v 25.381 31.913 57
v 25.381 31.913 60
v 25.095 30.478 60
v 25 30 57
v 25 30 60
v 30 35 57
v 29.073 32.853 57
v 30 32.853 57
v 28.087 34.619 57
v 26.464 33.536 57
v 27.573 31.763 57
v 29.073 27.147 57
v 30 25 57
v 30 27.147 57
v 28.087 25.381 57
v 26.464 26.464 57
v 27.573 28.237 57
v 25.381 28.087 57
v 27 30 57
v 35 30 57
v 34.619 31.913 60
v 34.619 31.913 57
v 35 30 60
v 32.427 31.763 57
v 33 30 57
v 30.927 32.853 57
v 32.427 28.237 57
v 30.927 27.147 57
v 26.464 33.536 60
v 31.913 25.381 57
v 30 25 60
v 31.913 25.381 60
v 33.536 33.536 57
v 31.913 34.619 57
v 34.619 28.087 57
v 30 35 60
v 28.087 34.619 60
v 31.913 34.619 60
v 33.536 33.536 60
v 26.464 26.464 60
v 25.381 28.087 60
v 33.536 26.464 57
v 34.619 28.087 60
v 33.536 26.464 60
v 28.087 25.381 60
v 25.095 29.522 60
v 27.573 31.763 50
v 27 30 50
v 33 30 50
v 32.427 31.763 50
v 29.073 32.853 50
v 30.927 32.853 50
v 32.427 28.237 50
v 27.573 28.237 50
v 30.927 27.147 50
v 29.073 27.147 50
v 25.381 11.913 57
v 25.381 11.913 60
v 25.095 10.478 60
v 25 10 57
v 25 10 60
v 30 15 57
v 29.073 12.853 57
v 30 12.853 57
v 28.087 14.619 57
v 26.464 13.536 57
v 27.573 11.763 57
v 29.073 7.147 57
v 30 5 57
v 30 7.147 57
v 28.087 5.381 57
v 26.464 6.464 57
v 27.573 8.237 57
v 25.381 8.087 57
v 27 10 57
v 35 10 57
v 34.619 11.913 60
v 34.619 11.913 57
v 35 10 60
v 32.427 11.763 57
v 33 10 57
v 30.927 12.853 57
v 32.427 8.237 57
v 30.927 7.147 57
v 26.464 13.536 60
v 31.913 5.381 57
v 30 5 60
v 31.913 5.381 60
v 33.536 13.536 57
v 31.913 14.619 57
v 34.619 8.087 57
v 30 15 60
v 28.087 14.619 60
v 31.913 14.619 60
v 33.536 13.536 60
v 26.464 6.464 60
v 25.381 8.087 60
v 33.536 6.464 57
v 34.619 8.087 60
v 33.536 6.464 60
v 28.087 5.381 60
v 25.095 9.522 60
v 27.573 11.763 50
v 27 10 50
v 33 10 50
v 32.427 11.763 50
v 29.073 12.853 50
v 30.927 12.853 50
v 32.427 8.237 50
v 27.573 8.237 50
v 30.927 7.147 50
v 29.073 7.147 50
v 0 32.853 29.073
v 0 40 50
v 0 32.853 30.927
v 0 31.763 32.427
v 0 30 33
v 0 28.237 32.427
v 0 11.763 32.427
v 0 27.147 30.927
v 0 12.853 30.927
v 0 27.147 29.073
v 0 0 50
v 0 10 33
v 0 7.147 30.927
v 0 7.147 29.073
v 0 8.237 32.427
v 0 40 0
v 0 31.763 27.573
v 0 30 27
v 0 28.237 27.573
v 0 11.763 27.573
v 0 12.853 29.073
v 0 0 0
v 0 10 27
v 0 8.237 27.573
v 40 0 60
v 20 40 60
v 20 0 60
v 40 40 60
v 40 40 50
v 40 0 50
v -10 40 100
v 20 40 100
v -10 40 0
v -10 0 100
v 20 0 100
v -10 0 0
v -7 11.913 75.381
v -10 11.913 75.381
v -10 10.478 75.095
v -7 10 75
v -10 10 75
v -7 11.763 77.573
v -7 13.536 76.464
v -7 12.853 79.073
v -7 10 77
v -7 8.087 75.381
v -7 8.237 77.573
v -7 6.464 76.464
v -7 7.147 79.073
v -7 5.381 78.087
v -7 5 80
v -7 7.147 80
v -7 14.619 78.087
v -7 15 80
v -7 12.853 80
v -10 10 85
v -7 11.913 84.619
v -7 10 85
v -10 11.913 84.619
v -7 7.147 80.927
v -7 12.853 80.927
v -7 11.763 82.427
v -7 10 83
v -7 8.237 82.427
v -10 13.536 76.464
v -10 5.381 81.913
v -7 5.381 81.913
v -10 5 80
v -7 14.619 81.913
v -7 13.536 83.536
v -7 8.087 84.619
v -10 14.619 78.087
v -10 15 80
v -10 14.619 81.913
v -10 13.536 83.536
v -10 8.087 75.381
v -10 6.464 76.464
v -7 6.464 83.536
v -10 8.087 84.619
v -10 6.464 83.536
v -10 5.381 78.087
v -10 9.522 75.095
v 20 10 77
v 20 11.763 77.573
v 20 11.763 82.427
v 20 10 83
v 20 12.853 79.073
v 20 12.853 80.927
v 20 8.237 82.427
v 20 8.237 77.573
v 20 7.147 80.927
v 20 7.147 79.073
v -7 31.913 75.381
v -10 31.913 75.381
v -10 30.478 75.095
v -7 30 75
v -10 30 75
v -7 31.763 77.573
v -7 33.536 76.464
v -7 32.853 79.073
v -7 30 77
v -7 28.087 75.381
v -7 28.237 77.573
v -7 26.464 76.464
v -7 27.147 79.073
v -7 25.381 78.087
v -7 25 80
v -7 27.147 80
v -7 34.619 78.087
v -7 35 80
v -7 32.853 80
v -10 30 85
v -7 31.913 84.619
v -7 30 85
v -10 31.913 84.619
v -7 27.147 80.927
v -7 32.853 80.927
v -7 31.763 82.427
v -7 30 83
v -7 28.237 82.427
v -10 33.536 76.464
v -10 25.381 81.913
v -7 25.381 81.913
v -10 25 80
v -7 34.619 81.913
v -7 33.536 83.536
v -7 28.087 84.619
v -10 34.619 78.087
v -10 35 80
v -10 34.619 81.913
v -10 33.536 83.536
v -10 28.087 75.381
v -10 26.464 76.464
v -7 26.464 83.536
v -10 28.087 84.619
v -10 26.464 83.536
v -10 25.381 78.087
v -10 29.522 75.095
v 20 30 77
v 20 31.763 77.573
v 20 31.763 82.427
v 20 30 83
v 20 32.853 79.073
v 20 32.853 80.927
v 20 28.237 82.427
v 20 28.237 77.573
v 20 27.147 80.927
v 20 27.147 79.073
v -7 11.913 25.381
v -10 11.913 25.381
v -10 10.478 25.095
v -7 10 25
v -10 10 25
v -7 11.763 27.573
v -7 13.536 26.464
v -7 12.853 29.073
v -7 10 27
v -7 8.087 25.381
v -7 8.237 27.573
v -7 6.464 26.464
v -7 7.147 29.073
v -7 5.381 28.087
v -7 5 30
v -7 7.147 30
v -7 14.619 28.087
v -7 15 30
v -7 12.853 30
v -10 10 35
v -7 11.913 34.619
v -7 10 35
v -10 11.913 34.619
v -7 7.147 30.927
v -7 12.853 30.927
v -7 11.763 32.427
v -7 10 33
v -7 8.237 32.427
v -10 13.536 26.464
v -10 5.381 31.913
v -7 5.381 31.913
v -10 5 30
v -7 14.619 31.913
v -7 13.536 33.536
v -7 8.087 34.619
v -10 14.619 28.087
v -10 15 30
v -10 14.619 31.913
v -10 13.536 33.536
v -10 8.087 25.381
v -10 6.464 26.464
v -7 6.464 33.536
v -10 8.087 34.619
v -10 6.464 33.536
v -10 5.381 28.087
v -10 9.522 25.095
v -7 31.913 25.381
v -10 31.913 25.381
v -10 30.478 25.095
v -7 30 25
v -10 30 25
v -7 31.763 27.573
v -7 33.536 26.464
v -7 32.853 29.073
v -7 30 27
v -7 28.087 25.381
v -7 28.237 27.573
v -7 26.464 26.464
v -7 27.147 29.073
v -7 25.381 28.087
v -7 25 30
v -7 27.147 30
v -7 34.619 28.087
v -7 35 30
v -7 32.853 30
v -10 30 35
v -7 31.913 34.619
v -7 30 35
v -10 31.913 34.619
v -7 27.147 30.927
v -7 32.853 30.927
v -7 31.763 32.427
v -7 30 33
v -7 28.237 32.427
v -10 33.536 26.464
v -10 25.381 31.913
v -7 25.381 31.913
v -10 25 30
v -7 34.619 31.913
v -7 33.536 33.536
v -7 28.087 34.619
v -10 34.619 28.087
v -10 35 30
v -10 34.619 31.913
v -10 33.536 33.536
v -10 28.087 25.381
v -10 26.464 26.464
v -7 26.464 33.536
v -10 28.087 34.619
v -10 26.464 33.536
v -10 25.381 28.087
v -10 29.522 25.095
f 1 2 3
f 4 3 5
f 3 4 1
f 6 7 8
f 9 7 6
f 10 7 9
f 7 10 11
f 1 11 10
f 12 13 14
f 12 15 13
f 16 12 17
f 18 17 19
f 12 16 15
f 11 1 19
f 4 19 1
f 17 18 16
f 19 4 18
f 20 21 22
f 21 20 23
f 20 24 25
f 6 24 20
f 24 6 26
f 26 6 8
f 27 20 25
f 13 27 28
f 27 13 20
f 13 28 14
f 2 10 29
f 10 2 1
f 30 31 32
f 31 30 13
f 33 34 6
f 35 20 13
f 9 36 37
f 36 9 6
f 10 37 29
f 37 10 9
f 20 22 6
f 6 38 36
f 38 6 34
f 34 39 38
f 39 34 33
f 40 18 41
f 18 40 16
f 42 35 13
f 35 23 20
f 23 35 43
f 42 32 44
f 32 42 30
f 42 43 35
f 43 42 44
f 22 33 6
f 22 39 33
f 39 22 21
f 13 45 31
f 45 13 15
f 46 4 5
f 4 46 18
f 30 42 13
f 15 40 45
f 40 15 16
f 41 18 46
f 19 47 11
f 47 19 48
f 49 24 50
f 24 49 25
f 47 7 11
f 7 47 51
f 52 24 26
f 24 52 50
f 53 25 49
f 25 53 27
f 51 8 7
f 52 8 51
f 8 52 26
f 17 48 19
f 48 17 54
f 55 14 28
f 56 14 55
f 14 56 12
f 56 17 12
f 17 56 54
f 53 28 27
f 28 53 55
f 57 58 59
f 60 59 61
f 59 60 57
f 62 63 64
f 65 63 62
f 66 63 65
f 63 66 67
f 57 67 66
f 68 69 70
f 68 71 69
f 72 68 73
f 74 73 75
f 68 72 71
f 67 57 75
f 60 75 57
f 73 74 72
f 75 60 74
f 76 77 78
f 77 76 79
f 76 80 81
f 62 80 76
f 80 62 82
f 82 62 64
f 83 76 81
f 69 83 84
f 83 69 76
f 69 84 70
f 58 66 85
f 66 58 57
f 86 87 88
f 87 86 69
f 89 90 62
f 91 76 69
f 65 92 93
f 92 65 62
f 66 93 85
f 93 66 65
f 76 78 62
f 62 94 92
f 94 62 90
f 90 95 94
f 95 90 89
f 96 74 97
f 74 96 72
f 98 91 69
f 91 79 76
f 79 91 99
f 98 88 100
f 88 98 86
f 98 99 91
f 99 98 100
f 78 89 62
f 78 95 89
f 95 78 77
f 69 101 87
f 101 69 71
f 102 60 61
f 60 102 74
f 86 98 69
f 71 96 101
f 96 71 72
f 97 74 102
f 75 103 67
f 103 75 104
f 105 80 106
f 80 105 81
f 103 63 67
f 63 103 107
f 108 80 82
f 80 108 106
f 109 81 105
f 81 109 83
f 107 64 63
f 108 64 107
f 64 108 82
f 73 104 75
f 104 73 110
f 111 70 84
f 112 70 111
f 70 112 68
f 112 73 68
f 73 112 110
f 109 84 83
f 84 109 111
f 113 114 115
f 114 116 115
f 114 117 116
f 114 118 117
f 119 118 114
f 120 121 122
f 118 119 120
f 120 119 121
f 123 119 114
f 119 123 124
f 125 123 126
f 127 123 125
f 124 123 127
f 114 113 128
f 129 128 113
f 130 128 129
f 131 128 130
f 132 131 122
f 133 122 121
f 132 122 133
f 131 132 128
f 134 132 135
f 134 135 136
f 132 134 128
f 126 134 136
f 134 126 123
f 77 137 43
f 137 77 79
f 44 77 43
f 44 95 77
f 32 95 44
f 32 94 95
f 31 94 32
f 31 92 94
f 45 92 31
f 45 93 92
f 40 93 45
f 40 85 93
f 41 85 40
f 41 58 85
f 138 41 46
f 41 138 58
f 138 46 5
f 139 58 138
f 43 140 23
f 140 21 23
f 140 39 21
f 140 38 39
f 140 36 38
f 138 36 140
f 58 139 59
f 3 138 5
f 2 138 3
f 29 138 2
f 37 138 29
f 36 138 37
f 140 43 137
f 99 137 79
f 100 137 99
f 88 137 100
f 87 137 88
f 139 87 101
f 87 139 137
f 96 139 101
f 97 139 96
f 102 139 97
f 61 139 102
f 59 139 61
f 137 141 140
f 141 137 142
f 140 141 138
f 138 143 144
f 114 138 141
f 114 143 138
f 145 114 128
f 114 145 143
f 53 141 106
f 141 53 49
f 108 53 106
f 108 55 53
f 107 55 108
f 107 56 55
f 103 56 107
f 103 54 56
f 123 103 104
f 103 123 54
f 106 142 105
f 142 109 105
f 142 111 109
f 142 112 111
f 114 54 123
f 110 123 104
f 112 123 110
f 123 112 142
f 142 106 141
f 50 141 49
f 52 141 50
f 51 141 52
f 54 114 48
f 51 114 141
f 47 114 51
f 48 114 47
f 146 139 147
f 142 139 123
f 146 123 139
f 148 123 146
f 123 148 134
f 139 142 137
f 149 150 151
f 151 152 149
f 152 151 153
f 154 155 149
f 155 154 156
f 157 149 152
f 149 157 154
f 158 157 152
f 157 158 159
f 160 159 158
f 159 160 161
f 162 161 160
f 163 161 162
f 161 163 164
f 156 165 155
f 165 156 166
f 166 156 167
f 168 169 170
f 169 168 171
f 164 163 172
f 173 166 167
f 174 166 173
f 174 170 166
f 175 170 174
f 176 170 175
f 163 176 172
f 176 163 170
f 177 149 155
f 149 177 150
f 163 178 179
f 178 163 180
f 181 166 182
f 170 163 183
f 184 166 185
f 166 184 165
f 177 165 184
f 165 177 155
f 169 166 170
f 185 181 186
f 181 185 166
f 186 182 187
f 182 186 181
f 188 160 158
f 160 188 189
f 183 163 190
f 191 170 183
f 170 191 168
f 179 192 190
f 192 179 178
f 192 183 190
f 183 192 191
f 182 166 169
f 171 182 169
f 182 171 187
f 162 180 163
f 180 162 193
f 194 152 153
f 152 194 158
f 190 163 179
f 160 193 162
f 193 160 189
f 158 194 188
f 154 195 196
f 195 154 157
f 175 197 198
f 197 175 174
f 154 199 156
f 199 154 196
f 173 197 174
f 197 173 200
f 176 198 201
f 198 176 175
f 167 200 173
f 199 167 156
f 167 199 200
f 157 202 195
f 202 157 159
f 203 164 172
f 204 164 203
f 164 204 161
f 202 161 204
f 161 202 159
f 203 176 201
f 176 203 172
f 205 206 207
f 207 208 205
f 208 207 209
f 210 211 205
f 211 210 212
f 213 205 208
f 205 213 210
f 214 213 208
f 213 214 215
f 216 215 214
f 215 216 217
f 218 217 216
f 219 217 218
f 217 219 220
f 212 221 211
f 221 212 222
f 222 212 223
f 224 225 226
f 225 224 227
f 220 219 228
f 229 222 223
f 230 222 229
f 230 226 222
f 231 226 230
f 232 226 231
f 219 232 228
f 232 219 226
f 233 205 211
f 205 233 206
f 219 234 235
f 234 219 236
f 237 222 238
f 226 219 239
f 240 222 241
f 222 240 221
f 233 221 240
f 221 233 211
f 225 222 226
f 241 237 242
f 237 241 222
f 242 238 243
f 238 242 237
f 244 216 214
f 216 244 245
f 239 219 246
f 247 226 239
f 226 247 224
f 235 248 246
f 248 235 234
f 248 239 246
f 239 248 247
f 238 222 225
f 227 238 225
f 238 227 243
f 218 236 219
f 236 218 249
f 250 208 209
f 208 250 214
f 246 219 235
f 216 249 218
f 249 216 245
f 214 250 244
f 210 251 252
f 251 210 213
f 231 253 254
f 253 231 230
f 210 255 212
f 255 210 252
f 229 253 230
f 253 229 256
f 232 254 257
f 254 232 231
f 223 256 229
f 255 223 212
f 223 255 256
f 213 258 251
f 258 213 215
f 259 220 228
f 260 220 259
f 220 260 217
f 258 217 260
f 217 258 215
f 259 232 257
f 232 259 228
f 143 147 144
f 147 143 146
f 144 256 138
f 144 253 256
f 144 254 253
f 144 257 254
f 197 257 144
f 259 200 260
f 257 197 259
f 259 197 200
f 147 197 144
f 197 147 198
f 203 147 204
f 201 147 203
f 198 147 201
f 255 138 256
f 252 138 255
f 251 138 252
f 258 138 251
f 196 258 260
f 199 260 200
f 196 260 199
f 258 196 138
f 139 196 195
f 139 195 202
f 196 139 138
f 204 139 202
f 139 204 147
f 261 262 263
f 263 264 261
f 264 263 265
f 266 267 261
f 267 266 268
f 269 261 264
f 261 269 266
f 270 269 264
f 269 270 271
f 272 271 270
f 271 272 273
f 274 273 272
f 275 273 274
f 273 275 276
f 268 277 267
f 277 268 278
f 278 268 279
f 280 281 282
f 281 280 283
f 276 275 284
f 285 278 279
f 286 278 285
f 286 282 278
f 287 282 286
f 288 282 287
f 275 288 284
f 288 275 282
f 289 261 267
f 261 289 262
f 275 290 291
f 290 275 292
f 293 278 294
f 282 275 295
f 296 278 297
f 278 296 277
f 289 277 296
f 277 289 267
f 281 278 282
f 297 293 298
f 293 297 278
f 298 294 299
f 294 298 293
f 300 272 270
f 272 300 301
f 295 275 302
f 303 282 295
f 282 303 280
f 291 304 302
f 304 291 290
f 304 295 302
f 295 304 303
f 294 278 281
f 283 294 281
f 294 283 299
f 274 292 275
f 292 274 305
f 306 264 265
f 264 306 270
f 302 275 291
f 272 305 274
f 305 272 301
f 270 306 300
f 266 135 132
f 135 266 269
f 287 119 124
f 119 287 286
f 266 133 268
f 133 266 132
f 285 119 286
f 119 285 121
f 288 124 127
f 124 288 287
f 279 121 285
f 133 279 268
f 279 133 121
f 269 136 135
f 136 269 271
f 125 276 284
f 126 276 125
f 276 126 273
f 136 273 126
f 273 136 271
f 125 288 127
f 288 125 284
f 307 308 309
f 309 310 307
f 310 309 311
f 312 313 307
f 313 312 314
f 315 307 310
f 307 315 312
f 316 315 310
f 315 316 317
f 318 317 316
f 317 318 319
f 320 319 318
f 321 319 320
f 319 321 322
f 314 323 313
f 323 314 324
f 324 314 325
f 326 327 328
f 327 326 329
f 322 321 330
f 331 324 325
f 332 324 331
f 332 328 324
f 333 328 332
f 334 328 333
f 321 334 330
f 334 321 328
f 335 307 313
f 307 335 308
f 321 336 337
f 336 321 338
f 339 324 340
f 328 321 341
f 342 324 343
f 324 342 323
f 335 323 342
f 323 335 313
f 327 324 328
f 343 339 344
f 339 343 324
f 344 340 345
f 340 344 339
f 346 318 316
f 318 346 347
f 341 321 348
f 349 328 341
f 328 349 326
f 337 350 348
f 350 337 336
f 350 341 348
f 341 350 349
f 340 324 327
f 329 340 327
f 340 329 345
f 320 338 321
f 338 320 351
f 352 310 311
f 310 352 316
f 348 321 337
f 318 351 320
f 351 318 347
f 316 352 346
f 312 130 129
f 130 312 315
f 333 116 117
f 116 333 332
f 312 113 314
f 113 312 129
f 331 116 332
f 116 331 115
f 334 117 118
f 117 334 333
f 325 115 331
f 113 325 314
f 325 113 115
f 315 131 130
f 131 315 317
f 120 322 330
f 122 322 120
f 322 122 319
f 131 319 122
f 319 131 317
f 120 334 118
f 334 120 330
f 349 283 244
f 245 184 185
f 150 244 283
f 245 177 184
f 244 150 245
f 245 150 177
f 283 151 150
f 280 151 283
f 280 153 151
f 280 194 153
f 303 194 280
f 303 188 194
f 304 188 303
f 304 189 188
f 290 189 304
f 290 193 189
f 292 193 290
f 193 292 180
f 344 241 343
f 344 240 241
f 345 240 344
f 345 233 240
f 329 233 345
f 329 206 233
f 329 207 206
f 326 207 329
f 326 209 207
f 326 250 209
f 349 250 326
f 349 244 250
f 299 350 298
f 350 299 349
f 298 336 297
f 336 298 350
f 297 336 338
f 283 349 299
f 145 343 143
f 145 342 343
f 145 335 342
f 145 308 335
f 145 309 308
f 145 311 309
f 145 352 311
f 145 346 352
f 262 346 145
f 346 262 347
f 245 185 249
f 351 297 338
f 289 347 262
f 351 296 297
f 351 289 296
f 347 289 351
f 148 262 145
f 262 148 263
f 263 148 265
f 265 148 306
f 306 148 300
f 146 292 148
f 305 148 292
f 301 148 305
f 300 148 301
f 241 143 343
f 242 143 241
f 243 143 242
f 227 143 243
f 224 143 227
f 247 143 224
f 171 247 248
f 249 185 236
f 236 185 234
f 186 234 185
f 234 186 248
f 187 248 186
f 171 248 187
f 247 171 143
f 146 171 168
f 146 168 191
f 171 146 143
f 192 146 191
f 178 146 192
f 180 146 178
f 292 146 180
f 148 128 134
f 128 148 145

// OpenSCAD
// file: Profile.scad
q = 5;

ri = 0.3;
w2 =  6.4/2-ri;
w1 = 11.0/2-ri;
w0 =     w2;
th =  4.3;
t0 =  2.1+1.8+ri;
t1 =  t0+2.35;
t2 =  t0+th-ri;


module groove() {
    hull() {
        translate([ t2+2*ri,  w2+2*ri]) circle(r=ri, $fn=2*q);
        translate([ t2+2*ri+5,  w2+2*ri+5]) circle(r=ri, $fn=2*q);
        translate([ t2+2*ri,  10]) circle(r=ri, $fn=3);
    }
}

module slot_6() {
    hull() {
        translate([ t0, -w0]) circle(r=ri, $fn=5*q);
        translate([ t0,  w0]) circle(r=ri, $fn=2*q);
        translate([ t1, -w1]) circle(r=ri, $fn=2*q);
        translate([ t1,  w1]) circle(r=ri, $fn=2*q);
        translate([ t2, -w1]) circle(r=ri, $fn=2*q);
        translate([ t2,  w1]) circle(r=ri, $fn=2*q);
    }  
    translate([ t0-0.3, 0]) circle(r=0.5, $fn=5*q);    
}
module vSlot_6() {
    slot_6();
    difference() {
        translate([ t2+5,  0]) square([10,10], center=true);
        groove();
        mirror([0,1]) groove();
    }
}

module profile20x20_6V() {  // 20x20mm profile 6mm Vslot
    le = 20/2;
    difference() {
        hull() {
            translate([-le+0.5,-le+0.5]) circle(r=0.5, $fn=2*q);
            translate([-le+0.5, le-0.5]) circle(r=0.5, $fn=2*q);
            translate([ le-0.5,-le+0.5]) circle(r=0.5, $fn=2*q);
            translate([ le-0.5, le-0.5]) circle(r=0.5, $fn=2*q);
        }   
        circle(d=4.2, $fn=3*q);
        for(i=[0:3]) rotate(90*i) vSlot_6();
    }    
}

module profile40x40_6V() {  // 40x40mm profile 6mm Vslot
    le = 40/2;
    difference() {
        hull() {
            translate([-le+2,-le+2]) circle(r=2, $fn=3*q);
            translate([-le+2, le-2]) circle(r=2, $fn=3*q);
            translate([ le-2,-le+2]) circle(r=2, $fn=3*q);
            translate([ le-2, le-2]) circle(r=2, $fn=3*q);
        }   
        for(i=[0:3]) {
            rotate(90*i) translate([ le/2, le/2]) circle(d=4.6, $fn=3*q);
            rotate(90*i) translate([ le/2, le/2]) vSlot_6();
            rotate(90*i) translate([ le/2,-le/2]) vSlot_6();
            rotate(90*i) translate([-le/2, le/2])  slot_6();
            rotate(90*i) translate([-le/2,-le/2])  slot_6();
        }
        square([le*0.35, le*1.85],center=true);
        square([le*1.85, le*0.35],center=true);
        rotate(45) square(le*0.93,center=true);
    }
}
module V20x20_6(h) {
    linear_extrude(height=h)
    profile20x20_6V();
}

module V40x40_6(h) {
    linear_extrude(height=h)
    profile40x40_6V();
}

//T40x40_10(100);
//vSlotGroove6();
//profile20x20_6V();
//profile40x40_6V();
V20x20_6(50);
translate([60,0]) V40x40_6(50);
// main file
use <Profile.scad>

%translate([20,20,0]) V40x40_6(50);

module m5_bolt(tl)
{
    rotate([0,90,0]) translate([0,0,0]) cylinder(r=5,h=4);
    rotate([0,90,0]) translate([0,0,2.9]) cylinder(r=3,h=tl+1);
    
}

difference(){
   translate([0,0,50]) cube([40,40,10]);
   translate([30,30,61]) rotate([0,90,0]) m5_bolt(30);
   translate([30,10,61]) rotate([0,90,0]) m5_bolt(30); 
    }
difference(){
   translate([0,0,60]) cube([20,40,40]);
   translate([-11,10,80]) m5_bolt(30);
   translate([-11,30,80]) m5_bolt(30); 
   }
difference(){
 translate([-10,0,0]) cube([10,40,100]);
 translate([-11,10,80]) m5_bolt(30);
 translate([-11,30,80]) m5_bolt(30);
 translate([-11,10,30]) m5_bolt(30);
 translate([-11,30,30]) m5_bolt(30);      
 }   
tsize = 10;
